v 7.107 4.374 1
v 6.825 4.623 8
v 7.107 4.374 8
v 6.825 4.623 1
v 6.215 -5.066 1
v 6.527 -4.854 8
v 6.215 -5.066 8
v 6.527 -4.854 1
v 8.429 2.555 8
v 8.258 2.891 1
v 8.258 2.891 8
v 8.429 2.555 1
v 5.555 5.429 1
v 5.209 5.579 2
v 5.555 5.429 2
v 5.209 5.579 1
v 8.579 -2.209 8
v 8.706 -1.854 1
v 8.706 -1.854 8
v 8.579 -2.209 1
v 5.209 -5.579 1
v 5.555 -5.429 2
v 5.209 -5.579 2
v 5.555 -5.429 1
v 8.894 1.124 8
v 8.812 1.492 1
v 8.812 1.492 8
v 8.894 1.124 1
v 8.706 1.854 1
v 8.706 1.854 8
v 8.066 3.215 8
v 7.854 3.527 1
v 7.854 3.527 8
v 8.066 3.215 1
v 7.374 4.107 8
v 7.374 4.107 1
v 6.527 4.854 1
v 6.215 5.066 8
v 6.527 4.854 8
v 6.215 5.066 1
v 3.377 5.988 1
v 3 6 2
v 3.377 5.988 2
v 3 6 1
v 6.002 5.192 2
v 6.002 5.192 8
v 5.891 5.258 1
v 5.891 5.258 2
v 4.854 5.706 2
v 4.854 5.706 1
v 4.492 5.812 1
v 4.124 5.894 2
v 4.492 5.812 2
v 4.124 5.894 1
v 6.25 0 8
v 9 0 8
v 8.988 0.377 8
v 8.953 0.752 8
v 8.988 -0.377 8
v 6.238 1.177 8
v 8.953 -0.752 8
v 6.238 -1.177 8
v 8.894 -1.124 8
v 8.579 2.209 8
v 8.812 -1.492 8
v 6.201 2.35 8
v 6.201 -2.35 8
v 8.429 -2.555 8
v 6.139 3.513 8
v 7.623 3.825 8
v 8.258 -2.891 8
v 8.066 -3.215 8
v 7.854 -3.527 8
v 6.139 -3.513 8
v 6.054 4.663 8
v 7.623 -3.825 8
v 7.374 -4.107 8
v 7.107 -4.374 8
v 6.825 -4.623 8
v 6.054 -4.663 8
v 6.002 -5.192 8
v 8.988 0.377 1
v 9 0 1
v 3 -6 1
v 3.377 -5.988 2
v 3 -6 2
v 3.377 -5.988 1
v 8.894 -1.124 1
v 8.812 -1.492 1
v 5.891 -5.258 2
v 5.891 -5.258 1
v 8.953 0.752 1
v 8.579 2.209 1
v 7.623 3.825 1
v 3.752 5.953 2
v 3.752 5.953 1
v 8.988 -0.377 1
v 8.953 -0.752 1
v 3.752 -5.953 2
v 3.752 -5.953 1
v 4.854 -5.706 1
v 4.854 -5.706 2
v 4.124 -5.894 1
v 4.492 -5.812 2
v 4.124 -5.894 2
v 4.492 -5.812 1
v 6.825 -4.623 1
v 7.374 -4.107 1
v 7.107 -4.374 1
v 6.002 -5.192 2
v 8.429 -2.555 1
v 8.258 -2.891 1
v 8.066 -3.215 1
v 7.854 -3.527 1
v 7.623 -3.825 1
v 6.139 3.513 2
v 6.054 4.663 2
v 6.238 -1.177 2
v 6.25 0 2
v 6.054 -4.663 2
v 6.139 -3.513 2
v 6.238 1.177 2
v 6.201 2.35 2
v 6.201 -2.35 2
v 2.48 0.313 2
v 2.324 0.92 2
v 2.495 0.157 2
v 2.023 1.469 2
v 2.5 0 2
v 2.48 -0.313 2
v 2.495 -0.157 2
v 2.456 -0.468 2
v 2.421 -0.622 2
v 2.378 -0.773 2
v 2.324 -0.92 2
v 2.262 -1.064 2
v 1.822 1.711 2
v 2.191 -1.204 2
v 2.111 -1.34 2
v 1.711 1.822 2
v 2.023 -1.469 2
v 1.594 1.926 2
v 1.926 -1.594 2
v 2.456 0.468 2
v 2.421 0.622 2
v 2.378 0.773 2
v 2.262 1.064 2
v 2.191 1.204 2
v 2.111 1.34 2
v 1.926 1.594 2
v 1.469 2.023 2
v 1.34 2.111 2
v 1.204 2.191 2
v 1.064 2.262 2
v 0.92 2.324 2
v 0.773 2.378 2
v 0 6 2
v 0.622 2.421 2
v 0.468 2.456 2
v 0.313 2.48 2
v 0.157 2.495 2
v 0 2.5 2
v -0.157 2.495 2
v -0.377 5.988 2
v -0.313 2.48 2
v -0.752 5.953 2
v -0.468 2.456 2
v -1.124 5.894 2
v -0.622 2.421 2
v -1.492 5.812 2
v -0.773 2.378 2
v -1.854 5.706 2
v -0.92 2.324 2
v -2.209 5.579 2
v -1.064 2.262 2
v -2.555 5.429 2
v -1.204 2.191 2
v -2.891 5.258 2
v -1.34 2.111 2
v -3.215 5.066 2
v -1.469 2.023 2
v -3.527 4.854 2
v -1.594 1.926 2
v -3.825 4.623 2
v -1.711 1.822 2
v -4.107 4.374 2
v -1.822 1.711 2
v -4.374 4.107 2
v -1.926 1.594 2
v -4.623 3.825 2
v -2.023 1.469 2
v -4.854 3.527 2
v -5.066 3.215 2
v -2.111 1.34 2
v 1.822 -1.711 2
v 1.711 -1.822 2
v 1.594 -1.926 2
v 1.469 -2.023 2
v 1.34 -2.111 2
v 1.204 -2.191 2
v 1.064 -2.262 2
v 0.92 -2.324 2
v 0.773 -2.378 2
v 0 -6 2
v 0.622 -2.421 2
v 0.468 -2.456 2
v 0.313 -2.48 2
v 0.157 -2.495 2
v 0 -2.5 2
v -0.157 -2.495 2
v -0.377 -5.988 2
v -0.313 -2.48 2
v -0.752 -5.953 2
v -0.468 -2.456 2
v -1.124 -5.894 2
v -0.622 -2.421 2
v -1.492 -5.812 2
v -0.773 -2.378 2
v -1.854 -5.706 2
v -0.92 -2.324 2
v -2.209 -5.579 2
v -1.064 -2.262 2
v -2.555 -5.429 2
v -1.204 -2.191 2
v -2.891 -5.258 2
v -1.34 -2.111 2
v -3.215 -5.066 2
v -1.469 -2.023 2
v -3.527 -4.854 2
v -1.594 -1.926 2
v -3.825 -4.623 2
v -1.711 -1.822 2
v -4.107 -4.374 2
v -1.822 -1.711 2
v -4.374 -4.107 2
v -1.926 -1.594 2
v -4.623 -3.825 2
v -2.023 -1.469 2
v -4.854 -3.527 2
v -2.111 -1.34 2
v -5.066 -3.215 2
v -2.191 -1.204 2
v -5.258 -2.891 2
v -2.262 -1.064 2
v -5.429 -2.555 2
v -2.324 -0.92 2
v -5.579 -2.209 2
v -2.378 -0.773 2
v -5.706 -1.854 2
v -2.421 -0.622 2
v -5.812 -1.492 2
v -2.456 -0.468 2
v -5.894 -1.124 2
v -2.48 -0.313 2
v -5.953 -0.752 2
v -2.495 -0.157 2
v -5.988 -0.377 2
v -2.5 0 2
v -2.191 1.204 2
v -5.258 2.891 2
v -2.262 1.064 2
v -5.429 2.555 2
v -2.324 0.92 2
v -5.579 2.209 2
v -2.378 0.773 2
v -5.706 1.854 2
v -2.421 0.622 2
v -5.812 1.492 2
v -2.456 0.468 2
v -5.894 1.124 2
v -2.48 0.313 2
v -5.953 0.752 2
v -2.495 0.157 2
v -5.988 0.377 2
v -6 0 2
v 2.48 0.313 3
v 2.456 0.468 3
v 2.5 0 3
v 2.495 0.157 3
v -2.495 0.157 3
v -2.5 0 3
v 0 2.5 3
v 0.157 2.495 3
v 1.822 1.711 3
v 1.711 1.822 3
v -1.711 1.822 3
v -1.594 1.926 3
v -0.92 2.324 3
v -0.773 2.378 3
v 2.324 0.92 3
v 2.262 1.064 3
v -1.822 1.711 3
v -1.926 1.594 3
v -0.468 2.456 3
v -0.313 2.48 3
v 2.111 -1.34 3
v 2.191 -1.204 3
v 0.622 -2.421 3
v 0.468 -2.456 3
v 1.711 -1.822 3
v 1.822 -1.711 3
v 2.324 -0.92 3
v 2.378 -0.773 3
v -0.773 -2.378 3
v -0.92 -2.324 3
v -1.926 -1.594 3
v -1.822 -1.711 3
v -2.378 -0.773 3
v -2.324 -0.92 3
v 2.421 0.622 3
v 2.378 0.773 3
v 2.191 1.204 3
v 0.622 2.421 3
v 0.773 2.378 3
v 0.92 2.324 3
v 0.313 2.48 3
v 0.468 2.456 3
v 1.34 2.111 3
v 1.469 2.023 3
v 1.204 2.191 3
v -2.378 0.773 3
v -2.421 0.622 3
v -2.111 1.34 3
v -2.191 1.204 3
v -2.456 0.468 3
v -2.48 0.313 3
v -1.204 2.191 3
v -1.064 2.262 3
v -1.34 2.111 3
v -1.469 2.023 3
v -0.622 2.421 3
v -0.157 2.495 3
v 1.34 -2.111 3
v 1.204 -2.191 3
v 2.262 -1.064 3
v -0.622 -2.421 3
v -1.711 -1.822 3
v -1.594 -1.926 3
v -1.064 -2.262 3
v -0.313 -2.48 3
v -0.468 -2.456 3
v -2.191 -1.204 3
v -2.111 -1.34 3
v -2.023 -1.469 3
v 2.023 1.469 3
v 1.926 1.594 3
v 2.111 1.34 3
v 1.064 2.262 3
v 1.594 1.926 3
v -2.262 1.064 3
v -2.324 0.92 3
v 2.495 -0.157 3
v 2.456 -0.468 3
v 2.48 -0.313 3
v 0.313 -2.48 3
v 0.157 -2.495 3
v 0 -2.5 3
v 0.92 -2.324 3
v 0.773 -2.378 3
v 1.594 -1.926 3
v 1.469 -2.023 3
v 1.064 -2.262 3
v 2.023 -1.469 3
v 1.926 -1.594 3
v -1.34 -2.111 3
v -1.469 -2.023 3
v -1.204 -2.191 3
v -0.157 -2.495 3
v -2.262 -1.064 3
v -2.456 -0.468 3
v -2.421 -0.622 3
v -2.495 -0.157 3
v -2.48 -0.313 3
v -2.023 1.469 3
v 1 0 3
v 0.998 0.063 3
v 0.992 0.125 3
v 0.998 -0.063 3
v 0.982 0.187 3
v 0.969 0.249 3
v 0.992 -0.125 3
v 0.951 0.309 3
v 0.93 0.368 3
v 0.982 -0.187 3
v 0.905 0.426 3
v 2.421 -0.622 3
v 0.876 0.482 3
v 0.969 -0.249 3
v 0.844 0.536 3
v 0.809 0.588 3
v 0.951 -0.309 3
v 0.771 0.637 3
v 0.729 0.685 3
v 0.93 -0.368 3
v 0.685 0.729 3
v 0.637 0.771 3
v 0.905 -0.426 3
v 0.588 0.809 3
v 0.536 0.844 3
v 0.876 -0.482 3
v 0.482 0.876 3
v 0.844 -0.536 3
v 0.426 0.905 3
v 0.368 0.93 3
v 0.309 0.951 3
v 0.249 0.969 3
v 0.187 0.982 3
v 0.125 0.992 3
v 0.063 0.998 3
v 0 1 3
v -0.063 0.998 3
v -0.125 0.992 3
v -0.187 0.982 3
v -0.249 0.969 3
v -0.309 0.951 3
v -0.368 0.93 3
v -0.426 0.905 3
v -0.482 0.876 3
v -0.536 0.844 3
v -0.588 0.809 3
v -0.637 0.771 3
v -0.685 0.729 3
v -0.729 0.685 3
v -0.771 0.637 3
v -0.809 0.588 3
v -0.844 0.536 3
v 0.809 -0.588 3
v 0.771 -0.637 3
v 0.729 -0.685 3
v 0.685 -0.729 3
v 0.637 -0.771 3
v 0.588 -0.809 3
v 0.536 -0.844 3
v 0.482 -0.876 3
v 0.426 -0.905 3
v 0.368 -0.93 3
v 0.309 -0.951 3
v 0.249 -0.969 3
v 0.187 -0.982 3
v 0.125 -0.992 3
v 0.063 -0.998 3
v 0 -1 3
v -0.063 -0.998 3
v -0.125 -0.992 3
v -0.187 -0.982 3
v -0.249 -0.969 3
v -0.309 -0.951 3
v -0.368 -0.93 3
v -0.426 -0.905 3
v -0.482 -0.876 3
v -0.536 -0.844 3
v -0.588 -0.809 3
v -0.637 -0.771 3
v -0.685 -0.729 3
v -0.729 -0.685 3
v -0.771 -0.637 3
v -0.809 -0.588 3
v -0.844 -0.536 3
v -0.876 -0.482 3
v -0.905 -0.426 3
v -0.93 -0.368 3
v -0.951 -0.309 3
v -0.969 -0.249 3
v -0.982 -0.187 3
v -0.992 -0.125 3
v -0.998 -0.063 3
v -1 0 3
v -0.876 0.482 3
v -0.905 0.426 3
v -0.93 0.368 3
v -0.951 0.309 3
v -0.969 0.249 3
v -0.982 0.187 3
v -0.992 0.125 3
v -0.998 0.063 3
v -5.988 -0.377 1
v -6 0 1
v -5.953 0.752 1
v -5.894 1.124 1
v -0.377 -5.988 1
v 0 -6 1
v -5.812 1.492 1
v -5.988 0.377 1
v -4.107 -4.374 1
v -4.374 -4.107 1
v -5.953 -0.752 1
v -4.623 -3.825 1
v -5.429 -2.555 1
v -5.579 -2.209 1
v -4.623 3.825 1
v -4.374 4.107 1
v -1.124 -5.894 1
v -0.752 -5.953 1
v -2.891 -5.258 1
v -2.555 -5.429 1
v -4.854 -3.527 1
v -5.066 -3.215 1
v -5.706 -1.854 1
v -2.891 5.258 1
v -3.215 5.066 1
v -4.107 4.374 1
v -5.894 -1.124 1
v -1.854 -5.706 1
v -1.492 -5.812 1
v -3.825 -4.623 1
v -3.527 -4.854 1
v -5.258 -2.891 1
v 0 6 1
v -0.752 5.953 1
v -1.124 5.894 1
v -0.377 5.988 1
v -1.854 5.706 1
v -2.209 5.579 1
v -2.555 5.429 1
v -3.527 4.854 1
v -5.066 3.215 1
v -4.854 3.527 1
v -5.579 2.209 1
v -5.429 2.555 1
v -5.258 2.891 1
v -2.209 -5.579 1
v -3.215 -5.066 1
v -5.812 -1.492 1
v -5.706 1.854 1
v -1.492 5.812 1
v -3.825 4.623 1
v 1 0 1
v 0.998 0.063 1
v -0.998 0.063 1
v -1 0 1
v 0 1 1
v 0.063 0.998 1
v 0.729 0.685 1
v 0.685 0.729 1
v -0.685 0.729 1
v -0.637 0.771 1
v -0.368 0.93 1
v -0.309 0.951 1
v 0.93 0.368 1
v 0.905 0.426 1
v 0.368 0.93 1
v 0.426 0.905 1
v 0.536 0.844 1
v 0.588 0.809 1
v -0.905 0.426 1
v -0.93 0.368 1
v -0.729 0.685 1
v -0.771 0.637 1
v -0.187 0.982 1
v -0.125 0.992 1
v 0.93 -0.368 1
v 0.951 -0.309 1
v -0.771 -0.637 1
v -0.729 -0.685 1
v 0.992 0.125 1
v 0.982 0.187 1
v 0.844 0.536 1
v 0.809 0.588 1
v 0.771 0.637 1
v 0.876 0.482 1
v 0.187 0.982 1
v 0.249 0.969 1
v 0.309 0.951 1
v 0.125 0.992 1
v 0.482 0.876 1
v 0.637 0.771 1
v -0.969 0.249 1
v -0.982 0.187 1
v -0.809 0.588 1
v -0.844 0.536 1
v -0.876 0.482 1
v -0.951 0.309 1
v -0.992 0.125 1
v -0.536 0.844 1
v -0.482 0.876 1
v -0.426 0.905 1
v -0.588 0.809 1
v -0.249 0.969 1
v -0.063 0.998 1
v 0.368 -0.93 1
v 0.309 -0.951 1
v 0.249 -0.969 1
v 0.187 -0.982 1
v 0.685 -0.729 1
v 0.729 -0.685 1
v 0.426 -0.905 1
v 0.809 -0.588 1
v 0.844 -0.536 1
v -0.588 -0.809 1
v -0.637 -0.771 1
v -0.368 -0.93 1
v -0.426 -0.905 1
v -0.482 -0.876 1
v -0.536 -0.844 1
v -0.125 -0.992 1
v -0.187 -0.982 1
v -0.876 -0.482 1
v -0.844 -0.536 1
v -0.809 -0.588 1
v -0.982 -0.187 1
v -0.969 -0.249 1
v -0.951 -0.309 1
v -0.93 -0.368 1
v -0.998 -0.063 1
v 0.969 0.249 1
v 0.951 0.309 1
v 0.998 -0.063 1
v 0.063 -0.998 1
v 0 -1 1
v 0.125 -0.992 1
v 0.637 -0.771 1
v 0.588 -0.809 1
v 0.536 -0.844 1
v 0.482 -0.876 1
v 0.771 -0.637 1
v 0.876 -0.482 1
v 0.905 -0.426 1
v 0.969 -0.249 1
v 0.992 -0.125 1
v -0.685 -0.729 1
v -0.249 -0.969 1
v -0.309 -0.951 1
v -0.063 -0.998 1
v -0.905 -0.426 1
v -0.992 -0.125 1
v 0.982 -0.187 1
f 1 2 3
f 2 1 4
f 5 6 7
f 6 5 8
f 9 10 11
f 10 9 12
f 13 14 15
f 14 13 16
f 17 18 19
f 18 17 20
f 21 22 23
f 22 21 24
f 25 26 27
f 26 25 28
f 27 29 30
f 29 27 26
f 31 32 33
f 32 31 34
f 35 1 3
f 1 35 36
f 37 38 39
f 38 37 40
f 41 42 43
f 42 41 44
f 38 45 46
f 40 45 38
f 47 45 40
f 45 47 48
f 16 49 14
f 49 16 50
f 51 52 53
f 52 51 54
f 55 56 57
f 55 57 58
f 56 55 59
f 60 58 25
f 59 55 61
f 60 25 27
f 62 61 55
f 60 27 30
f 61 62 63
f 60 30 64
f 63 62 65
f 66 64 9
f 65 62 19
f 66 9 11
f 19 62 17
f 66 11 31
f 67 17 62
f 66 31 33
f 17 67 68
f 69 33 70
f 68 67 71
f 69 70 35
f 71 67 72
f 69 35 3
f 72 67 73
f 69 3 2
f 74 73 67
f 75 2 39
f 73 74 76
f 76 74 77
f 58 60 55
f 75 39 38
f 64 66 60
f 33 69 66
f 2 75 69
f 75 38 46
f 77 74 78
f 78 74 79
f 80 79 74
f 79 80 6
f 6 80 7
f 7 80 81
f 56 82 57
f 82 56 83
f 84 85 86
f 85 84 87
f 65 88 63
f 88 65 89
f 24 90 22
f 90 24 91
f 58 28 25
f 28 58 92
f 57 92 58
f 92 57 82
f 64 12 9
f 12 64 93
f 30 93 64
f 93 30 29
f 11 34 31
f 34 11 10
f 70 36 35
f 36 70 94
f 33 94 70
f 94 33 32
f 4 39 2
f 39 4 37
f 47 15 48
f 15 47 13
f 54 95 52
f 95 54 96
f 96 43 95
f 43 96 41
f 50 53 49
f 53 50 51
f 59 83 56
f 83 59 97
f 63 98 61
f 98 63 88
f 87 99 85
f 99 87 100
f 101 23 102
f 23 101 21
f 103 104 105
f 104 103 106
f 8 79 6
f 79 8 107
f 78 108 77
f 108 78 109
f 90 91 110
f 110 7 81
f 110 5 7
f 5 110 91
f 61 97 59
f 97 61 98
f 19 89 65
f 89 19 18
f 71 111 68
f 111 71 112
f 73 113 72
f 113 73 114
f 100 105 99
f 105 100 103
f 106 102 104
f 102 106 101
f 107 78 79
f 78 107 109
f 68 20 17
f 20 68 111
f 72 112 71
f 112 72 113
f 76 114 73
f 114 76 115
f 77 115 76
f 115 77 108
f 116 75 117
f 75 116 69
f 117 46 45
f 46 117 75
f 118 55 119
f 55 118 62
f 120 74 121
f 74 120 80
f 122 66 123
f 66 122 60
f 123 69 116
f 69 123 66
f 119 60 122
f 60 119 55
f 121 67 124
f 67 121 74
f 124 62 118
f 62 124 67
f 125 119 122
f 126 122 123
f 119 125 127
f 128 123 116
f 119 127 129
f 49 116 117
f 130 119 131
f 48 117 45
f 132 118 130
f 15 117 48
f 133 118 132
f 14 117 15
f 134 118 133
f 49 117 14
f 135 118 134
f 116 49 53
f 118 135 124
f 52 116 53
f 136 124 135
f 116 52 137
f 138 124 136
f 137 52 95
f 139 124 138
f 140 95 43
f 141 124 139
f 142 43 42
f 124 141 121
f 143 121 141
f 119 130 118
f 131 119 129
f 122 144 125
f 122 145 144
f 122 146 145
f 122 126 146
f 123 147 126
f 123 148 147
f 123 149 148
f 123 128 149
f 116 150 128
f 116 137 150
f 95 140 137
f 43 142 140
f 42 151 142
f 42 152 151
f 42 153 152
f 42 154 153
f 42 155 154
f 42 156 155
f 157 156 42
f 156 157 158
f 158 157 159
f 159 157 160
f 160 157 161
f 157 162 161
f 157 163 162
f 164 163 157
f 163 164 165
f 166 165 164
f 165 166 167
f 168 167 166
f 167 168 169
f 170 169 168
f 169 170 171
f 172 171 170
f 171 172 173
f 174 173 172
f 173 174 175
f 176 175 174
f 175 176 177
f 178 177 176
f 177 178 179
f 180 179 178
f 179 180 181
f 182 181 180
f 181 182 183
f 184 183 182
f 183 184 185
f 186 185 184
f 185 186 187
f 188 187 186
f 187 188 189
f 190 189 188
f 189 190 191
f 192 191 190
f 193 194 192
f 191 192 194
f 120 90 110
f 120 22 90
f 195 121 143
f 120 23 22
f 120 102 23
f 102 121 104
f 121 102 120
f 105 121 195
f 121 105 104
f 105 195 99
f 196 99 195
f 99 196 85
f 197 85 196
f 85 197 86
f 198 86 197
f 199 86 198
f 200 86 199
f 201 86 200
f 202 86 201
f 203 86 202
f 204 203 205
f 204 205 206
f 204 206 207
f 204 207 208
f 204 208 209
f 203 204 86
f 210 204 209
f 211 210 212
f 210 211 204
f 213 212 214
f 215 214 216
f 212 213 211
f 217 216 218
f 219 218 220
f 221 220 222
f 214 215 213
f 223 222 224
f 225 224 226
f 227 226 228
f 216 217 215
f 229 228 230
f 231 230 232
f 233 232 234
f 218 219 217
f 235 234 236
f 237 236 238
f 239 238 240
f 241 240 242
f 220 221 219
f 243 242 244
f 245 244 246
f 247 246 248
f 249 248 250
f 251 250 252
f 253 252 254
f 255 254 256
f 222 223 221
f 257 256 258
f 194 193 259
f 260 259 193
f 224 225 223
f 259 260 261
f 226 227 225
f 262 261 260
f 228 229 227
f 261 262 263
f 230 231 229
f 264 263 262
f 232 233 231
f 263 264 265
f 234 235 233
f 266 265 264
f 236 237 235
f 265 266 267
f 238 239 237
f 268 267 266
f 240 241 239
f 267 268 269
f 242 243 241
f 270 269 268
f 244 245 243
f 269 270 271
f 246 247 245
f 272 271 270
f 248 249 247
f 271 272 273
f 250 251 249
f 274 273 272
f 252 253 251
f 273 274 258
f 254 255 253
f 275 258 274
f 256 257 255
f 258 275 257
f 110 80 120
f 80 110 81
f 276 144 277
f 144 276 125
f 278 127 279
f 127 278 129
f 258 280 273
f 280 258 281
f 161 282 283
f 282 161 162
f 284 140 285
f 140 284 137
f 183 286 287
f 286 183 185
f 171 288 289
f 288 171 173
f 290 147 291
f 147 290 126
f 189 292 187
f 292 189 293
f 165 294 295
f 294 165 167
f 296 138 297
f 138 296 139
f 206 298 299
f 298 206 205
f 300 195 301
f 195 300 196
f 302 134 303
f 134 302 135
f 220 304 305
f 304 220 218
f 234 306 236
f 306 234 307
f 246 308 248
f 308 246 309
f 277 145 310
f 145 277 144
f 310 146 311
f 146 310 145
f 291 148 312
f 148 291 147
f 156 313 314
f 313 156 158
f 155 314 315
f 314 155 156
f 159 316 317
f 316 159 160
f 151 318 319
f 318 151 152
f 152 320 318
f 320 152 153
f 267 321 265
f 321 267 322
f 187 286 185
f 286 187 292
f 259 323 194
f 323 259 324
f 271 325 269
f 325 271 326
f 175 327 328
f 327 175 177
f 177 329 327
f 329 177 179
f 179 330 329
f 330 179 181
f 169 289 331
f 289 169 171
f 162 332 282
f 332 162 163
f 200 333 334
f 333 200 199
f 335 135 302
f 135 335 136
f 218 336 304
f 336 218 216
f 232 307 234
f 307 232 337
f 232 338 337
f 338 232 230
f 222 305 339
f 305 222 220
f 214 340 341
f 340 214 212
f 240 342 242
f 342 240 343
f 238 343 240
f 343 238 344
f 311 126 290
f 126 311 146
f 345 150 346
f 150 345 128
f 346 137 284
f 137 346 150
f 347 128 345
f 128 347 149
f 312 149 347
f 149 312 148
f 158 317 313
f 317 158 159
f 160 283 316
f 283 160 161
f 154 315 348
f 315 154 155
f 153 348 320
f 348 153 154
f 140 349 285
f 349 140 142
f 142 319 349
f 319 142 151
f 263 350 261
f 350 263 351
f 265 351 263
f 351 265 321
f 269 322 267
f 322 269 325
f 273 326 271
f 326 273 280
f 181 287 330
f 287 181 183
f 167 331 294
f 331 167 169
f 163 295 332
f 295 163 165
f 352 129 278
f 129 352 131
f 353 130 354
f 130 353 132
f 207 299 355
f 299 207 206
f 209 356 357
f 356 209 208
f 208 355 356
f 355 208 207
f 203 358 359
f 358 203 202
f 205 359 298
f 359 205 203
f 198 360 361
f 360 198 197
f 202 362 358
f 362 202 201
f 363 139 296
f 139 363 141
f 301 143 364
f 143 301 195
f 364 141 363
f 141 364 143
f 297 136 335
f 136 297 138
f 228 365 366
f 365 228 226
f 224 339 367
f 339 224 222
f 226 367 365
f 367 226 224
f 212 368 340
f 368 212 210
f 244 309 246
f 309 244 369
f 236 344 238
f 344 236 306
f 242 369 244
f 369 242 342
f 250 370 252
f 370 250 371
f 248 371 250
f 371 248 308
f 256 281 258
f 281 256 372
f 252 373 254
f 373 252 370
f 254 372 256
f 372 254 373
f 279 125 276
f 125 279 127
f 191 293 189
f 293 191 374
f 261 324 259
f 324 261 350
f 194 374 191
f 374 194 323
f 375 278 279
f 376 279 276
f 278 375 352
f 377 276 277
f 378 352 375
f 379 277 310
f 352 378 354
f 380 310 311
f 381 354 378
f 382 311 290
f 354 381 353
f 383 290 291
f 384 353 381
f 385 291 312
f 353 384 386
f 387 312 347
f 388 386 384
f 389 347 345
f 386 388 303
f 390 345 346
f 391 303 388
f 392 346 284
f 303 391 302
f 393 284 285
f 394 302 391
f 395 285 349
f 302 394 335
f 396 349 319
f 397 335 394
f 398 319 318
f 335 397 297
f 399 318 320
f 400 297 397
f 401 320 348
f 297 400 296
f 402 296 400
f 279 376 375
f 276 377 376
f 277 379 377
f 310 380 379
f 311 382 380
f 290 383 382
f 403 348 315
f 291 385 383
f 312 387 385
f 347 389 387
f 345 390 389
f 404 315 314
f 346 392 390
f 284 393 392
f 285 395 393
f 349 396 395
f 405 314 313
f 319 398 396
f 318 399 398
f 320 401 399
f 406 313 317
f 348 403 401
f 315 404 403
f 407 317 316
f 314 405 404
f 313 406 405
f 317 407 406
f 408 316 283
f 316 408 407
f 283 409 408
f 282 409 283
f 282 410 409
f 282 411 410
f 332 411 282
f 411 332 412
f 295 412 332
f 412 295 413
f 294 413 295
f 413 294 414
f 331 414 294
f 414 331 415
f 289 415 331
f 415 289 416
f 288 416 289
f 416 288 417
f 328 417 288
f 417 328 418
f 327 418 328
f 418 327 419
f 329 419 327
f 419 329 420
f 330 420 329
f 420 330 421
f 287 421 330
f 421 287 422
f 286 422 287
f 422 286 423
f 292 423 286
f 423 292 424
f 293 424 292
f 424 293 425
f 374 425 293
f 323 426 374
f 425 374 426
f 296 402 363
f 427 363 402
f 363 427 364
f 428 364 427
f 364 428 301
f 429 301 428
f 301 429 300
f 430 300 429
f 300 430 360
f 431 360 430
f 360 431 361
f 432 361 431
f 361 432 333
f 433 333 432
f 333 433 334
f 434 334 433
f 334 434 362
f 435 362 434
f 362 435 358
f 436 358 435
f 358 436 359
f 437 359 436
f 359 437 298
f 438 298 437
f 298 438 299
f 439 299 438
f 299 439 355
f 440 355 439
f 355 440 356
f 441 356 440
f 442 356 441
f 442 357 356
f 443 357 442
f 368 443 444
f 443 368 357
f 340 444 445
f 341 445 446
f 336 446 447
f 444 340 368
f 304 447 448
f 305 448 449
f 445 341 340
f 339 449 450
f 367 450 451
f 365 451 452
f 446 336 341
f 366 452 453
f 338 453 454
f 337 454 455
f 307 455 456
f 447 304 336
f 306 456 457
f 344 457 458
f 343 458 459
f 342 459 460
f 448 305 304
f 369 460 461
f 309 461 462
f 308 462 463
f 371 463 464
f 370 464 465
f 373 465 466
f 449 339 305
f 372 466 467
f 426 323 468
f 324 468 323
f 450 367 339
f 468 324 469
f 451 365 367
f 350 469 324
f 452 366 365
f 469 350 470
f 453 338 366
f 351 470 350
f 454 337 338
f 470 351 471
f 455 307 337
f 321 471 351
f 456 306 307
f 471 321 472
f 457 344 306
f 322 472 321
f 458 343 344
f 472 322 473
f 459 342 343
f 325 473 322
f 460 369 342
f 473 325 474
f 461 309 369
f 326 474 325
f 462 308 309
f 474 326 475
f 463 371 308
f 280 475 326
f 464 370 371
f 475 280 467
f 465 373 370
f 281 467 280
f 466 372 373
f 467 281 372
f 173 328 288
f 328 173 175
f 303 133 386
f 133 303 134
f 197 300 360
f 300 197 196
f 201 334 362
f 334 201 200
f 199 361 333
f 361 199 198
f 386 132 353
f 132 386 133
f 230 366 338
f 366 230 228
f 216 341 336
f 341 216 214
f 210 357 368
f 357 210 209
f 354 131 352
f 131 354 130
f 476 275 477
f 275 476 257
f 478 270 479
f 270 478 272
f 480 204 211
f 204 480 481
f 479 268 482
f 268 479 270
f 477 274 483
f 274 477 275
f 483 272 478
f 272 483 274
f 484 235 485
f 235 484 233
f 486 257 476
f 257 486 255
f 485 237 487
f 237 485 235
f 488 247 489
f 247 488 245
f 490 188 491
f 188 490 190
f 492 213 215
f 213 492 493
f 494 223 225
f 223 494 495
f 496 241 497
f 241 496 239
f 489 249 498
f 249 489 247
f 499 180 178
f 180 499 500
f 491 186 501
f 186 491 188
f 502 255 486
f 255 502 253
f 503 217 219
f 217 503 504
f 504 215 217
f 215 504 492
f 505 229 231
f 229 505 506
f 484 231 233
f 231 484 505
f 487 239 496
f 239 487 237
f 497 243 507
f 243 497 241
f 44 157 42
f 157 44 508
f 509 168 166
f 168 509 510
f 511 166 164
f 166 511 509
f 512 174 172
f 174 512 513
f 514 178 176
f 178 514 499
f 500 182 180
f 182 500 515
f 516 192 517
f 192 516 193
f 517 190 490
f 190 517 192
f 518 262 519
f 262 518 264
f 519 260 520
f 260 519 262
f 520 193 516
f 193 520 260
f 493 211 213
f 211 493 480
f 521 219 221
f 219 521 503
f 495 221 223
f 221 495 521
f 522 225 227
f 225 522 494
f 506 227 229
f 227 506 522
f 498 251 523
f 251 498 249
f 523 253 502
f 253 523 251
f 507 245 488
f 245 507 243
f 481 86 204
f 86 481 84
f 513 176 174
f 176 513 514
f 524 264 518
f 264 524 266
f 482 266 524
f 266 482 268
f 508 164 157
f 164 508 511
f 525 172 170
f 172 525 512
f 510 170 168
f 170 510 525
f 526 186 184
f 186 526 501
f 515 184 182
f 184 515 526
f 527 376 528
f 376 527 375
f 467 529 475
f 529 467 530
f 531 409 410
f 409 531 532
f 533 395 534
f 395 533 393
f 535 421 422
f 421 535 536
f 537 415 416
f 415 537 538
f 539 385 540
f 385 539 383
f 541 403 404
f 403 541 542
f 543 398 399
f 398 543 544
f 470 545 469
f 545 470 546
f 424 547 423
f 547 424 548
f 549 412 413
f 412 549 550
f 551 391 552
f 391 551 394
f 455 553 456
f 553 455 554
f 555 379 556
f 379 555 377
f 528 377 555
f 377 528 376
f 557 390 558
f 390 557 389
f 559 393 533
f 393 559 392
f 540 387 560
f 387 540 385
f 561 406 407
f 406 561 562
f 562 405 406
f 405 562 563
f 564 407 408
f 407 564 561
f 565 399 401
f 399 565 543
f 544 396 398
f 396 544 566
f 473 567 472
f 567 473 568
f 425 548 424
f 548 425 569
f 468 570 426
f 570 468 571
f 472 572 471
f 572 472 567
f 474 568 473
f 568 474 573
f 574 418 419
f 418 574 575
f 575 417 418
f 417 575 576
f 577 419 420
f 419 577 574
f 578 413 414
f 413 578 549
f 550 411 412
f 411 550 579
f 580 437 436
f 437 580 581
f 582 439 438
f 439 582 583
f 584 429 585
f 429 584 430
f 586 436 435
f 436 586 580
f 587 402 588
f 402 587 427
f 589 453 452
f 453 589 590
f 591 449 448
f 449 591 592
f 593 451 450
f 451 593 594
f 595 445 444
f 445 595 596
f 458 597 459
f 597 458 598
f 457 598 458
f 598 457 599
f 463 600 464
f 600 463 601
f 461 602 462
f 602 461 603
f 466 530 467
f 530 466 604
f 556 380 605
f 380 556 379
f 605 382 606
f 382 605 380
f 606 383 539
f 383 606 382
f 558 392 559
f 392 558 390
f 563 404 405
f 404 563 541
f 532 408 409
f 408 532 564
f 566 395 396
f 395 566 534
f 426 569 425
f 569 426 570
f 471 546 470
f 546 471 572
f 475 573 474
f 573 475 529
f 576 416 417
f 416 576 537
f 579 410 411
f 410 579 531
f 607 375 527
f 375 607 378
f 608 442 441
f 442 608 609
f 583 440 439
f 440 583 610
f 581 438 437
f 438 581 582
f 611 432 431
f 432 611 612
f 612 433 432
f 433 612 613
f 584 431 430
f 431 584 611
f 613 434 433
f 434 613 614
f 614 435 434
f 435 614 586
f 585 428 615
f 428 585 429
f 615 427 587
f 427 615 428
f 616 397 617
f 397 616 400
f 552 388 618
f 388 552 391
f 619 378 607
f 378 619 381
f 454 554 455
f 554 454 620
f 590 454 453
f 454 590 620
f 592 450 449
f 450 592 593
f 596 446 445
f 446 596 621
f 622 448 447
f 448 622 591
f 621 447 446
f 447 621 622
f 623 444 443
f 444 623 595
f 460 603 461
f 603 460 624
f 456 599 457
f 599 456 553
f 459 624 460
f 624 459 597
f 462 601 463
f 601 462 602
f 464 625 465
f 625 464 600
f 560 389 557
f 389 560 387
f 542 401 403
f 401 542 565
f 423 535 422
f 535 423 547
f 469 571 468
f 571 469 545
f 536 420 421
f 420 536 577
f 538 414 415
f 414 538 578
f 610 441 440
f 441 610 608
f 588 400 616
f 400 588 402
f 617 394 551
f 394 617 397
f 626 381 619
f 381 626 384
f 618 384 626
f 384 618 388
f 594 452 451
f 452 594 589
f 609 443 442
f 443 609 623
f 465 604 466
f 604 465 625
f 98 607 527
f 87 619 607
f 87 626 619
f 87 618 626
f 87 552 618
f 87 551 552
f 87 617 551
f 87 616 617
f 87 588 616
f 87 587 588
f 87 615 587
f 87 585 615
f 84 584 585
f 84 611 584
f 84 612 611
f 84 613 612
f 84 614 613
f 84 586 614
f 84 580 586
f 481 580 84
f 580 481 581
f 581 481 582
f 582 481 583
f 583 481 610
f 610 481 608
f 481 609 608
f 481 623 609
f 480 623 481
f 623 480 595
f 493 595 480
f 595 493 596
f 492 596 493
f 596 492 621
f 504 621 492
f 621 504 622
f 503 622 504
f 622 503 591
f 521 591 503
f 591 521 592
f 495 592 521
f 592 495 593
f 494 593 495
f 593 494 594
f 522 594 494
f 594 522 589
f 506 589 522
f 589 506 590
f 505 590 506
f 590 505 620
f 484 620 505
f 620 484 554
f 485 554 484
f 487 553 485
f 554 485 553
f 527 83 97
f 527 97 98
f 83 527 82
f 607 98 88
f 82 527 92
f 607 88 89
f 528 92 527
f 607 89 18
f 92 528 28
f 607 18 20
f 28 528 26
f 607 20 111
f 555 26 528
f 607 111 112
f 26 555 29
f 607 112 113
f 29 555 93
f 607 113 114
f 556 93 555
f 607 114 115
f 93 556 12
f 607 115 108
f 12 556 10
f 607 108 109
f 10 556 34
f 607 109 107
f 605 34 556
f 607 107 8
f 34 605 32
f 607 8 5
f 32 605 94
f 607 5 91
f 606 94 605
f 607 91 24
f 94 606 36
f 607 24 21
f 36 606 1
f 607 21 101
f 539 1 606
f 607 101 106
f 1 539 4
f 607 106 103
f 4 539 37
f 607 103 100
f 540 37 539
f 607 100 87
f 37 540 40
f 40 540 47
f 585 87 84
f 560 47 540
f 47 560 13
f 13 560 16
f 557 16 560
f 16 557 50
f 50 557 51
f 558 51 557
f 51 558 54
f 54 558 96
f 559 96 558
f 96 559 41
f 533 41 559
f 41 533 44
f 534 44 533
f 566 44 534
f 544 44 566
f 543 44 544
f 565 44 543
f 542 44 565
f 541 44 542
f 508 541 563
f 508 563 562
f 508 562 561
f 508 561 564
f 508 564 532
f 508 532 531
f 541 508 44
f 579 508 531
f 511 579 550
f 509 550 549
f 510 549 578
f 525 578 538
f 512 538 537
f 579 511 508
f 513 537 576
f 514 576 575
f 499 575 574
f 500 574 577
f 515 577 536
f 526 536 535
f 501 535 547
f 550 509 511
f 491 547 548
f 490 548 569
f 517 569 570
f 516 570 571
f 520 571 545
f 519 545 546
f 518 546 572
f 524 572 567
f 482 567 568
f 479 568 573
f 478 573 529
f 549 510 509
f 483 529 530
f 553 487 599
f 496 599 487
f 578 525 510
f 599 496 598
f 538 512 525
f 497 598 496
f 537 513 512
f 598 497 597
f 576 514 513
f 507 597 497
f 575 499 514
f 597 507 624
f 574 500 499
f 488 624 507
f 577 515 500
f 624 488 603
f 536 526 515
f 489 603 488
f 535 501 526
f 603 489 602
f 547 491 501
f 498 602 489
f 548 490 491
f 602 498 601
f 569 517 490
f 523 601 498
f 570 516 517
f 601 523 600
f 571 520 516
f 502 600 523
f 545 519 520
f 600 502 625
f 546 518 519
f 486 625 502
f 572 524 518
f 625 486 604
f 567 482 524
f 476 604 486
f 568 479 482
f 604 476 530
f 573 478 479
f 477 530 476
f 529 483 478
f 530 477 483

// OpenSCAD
module leg_hip_tendon_retainer(){
    hood_offset_x = 3;
    hood_height = 8;
    hood_gap = 0.5;

    difference(){
        union(){
            translate([0,0,3/2])
            cylinder(d=5, h=3, center=true, $fn=100);

            hull(){
                translate([0,0,2/2])
                cylinder(d=12, h=2, center=true, $fn=100);
                translate([hood_offset_x,0,2/2])
                cylinder(d=12, h=2, center=true, $fn=100);
            }
            
            difference(){
                translate([hood_offset_x,0,hood_height/2])
                cylinder(d=12, h=hood_height, center=true, $fn=100);
                translate([0,0,(hood_height+0.1)/2+2])
                scale([1,3,1])
                cylinder(d=12+hood_gap, h=hood_height+0.1, center=true, $fn=100);
            }
        }
        
        cylinder(d=2, h=10, center=true, $fn=100);
    
        translate([0,0,-20/2+1])
        cube([20,20,20], center=true);
    }
}

leg_hip_tendon_retainer();
